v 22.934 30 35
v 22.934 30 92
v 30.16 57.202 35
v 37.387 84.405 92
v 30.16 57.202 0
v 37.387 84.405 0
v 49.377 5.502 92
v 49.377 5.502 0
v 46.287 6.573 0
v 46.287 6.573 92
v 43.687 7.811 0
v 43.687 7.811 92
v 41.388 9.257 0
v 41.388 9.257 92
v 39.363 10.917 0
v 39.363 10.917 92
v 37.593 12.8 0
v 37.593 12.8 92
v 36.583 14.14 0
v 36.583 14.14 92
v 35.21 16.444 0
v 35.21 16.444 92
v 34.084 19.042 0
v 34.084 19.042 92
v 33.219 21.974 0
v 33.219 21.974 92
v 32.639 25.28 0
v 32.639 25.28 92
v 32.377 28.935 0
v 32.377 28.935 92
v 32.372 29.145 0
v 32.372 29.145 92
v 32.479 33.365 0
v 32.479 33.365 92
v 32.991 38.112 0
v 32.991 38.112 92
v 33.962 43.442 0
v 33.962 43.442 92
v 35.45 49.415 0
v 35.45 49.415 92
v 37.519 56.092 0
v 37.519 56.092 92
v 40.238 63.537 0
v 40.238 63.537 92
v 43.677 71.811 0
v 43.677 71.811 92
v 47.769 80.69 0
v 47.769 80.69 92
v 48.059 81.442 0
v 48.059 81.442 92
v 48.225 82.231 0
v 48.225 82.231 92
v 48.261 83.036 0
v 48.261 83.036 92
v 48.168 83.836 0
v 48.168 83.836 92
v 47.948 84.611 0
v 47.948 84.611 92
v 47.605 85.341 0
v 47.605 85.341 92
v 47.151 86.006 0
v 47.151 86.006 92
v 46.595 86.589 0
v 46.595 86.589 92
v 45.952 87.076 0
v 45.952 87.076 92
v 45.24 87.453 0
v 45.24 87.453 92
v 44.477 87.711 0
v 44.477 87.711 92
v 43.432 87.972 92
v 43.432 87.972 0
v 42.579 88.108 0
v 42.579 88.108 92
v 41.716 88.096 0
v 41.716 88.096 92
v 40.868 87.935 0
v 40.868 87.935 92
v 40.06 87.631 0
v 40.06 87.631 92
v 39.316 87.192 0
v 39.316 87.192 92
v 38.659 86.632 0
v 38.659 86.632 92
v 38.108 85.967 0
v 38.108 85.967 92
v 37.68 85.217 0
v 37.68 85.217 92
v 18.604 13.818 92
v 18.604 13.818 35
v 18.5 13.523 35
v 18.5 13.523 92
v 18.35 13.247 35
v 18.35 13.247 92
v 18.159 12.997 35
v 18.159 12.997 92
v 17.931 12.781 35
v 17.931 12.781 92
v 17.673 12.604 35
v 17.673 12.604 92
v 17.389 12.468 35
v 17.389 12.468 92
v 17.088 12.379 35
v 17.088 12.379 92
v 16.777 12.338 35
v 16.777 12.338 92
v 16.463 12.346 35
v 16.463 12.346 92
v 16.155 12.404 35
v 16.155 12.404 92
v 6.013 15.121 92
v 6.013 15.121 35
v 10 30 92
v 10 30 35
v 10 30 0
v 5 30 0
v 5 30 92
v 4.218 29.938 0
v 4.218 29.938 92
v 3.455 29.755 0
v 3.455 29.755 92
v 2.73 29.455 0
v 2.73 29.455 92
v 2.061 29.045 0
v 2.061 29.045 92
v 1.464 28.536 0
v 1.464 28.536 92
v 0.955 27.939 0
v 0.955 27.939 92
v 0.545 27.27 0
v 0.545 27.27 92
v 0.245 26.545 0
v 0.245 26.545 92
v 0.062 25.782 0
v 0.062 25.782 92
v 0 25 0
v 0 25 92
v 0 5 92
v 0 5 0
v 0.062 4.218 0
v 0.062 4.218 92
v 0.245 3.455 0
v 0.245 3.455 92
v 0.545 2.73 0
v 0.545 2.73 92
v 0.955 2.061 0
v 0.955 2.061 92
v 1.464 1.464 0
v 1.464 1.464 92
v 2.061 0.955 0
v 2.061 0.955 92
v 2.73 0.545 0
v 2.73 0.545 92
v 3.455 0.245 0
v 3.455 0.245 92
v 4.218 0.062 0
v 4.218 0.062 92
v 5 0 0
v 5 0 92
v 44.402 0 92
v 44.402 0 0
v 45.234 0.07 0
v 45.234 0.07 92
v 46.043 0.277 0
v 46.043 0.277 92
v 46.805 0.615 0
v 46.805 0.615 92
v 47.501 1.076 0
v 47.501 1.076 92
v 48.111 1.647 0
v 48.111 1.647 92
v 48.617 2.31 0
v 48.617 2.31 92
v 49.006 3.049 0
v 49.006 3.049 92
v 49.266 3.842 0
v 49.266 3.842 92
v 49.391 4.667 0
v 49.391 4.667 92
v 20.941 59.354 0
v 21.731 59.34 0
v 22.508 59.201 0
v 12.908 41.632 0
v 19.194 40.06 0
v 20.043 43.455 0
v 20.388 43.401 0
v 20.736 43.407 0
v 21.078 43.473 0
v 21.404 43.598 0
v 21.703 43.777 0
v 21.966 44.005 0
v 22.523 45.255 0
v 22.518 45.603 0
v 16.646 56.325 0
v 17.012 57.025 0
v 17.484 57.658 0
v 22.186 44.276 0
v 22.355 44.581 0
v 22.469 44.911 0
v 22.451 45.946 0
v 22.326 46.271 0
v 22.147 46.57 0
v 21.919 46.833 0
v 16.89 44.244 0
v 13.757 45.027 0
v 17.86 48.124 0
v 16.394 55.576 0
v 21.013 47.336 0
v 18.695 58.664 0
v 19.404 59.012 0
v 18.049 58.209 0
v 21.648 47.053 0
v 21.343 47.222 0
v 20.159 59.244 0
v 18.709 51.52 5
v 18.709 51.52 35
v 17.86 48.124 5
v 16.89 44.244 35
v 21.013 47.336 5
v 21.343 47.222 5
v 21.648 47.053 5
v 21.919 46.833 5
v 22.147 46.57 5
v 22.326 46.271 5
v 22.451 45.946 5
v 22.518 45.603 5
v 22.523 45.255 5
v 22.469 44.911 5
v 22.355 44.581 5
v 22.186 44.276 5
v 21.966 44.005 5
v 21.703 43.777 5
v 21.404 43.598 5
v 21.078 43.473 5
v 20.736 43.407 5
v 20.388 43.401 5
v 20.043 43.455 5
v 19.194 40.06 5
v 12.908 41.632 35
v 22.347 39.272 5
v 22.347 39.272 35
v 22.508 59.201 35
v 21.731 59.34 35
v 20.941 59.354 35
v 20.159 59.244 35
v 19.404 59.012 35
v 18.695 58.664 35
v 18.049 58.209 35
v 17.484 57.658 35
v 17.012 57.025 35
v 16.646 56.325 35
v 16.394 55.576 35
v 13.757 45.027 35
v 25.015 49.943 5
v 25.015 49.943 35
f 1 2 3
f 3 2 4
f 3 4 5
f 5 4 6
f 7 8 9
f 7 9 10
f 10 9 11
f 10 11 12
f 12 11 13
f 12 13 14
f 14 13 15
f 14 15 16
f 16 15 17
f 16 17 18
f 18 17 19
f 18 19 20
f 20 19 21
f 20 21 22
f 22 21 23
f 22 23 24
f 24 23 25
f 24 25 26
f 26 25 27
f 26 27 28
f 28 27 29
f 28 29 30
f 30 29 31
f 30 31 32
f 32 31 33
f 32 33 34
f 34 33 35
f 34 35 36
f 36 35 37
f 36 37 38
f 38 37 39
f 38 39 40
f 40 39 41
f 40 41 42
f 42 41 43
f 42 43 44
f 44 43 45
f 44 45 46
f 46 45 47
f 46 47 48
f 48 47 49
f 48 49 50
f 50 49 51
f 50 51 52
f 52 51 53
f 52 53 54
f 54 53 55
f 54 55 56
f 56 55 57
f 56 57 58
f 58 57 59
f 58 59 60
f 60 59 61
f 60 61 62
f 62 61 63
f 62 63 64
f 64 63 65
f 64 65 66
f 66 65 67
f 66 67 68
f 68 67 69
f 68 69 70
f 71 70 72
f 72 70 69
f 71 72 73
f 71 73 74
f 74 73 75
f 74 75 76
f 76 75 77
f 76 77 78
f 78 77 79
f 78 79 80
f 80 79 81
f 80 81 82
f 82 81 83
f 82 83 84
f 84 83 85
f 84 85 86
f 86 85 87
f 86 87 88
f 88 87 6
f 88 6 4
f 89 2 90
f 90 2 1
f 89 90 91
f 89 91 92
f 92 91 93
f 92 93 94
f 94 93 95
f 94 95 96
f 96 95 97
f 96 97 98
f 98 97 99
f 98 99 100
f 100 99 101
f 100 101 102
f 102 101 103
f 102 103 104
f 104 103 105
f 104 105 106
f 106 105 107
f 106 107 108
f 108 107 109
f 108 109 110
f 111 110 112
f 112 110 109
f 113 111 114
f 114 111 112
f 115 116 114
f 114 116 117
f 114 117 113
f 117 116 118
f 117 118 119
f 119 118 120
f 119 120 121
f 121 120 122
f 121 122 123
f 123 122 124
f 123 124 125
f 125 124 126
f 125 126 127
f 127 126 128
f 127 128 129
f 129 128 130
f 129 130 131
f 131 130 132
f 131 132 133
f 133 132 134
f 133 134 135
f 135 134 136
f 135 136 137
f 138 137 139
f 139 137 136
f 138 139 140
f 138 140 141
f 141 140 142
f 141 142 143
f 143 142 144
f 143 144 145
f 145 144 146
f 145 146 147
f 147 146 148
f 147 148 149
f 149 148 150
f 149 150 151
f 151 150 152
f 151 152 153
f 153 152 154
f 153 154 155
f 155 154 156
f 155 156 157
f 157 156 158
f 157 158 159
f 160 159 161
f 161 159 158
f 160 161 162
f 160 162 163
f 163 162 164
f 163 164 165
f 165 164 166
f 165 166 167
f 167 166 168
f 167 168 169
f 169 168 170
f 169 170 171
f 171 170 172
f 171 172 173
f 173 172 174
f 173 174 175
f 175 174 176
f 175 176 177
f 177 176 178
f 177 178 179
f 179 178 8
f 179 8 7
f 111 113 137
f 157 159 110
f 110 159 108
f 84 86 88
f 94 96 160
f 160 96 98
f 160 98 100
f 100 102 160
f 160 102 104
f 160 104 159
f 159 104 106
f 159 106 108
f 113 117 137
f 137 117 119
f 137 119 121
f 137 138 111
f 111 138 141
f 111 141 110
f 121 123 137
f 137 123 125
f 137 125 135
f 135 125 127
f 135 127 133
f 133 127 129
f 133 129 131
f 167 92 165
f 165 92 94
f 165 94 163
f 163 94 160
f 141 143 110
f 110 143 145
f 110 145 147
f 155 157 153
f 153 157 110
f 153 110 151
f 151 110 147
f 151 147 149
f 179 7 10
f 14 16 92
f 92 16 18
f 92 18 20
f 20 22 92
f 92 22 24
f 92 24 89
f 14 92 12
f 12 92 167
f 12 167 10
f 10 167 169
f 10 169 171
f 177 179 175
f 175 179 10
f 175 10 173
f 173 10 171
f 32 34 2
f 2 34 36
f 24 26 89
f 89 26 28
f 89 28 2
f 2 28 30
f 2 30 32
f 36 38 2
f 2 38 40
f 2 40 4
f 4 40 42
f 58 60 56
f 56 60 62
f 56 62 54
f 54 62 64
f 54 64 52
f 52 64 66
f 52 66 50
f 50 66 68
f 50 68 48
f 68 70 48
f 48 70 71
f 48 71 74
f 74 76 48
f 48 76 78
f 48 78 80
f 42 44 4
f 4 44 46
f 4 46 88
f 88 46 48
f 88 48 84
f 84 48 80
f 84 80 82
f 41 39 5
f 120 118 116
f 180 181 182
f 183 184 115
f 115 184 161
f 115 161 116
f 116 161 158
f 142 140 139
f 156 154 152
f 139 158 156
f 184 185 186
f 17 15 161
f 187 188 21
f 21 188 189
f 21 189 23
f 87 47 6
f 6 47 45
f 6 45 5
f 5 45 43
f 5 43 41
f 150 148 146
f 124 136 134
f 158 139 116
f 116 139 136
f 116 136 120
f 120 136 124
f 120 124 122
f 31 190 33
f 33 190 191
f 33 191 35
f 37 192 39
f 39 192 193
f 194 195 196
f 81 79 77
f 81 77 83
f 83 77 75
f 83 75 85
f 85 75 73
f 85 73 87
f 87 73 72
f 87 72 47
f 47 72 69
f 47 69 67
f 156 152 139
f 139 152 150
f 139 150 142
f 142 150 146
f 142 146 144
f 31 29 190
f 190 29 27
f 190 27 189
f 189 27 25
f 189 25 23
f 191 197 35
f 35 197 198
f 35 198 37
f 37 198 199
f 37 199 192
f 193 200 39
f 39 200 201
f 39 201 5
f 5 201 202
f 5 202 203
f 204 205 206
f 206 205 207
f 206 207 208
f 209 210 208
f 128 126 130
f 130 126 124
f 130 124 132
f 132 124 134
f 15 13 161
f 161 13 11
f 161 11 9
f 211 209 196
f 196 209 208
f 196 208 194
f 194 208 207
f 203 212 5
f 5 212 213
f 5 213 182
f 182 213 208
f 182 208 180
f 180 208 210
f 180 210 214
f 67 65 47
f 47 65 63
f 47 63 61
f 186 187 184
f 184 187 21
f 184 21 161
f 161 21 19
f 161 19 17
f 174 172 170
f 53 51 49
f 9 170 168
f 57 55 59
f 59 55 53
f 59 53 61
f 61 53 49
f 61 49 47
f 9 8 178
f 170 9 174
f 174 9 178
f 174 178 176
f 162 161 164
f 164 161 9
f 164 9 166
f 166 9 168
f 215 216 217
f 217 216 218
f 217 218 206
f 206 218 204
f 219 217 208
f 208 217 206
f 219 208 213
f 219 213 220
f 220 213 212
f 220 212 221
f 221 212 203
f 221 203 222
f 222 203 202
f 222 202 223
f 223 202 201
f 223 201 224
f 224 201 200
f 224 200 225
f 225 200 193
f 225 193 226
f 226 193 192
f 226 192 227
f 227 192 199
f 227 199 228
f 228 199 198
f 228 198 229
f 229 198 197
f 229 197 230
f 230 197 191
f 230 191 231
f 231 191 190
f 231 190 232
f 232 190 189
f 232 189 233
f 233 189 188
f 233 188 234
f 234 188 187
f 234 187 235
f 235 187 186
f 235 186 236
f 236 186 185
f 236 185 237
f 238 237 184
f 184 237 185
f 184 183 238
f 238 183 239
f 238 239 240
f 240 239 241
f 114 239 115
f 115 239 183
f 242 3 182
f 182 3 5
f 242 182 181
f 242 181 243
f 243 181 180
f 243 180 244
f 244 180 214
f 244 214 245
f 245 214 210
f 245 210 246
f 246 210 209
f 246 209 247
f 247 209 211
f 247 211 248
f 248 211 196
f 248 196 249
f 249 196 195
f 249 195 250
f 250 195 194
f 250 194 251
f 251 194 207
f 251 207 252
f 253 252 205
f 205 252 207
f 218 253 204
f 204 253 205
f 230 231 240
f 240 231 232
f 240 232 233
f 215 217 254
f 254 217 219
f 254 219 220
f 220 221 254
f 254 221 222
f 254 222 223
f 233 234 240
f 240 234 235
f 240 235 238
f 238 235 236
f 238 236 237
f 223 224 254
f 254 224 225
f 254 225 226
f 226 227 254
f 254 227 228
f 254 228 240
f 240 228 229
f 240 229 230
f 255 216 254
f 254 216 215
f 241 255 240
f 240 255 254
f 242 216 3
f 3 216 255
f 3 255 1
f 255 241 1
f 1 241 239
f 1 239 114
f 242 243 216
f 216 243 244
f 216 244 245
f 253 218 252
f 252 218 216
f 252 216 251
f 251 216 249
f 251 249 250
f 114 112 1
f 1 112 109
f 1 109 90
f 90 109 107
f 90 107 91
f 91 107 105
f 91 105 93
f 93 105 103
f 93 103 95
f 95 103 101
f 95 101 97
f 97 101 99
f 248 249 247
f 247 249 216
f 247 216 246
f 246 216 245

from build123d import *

# Parameters (mm, degrees)
BOSS_EXTRUDE1_DEPTH = 92
BOSS_EXTRUDE2_DEPTH = 5
BOSS_EXTRUDE3_START = 5
BOSS_EXTRUDE3_DEPTH = 30


with BuildPart() as part:
    # Sketch1 → Boss-Extrude1 (new body)
    with BuildSketch(Plane.XY):
        with BuildLine():
            ThreePointArc((43.43198058, 87.971890028), (39.678375933, 87.427416305), (37.386921991, 84.40496063))
            Line((37.386921991, 84.40496063), (30.160238403, 57.202480315))
            Line((30.160238403, 57.202480315), (22.933554815, 30))
            Line((22.933554815, 30), (18.60433255, 13.818460639))
            ThreePointArc((18.60433255, 13.818460639), (17.672613775, 12.603502297), (16.154645697, 12.403510891))
            Line((16.154645697, 12.403510891), (6.013160809, 15.120913577))
            Line((6.013160809, 15.120913577), (10, 30))
            Line((10, 30), (5, 30))
            ThreePointArc((5, 30), (1.464466094, 28.535533906), (0, 25))
            Line((0, 25), (0, 5))
            ThreePointArc((0, 5), (1.464466094, 1.464466094), (5, 0))
            Line((5, 0), (44.402158914, 0))
            ThreePointArc((44.402158914, 0), (48.110924034, 1.646634335), (49.376897159, 5.501975487))
            add(Edge.make_bspline(
                [(47.769018508, 80.690333507), (37.23731495, 58.823324345), (26.973591169, 24.424922179), (38.309234052, 8.697752331), (49.376897159, 5.501975487)],
                knots=[0.034365073, 0.034365073, 0.034365073, 0.034365073, 0.450207032, 0.866048991, 0.866048991, 0.866048991, 0.866048991], degree=3))
            ThreePointArc((47.769018508, 80.690333507), (47.791234842, 84.982795953), (44.476941442, 87.710649813))
            Line((44.476941442, 87.710649813), (43.43198058, 87.971890028))
        make_face()
    extrude(amount=BOSS_EXTRUDE1_DEPTH)

    # Sketch1<3> → Boss-Extrude2 (add)
    with BuildSketch(Plane.XY):
        with BuildLine():
            Line((22.933554815, 30), (30.160238403, 57.202480315))
            Line((30.160238403, 57.202480315), (22.508418768, 59.201215835))
            ThreePointArc((22.508418768, 59.201215835), (18.694880172, 58.664472736), (16.394052668, 55.576210673))
            Line((16.394052668, 55.576210673), (13.75675976, 45.027039041))
            Line((13.75675976, 45.027039041), (16.890316486, 44.243649859))
            Line((16.890316486, 44.243649859), (17.860458987, 48.12421986))
            Line((17.860458987, 48.12421986), (21.013422112, 47.335979078))
            ThreePointArc((21.013422112, 47.335979078), (22.468635862, 44.910622828), (20.043279612, 43.455409078))
            Line((20.043279612, 43.455409078), (19.194404924, 40.059910327))
            Line((19.194404924, 40.059910327), (12.907885073, 41.63154029))
            Line((12.907885073, 41.63154029), (10, 30))
            Line((10, 30), (6.013160809, 15.120913577))
            Line((6.013160809, 15.120913577), (16.154645697, 12.403510891))
            ThreePointArc((16.154645697, 12.403510891), (17.672613775, 12.603502297), (18.60433255, 13.818460639))
            Line((18.60433255, 13.818460639), (22.933554815, 30))
        make_face()
    extrude(amount=BOSS_EXTRUDE2_DEPTH)

    # Sketch1<4> → Boss-Extrude3 (add)
    with BuildSketch(Plane.XY.offset(BOSS_EXTRUDE3_START)):
        with BuildLine():
            Line((22.933554815, 30), (30.160238403, 57.202480315))
            Line((30.160238403, 57.202480315), (22.508418768, 59.201215835))
            ThreePointArc((22.508418768, 59.201215835), (18.694880172, 58.664472736), (16.394052668, 55.576210673))
            Line((16.394052668, 55.576210673), (14.72690226, 48.907609041))
            Line((14.72690226, 48.907609041), (13.75675976, 45.027039041))
            Line((13.75675976, 45.027039041), (16.890316486, 44.243649859))
            Line((16.890316486, 44.243649859), (17.860458987, 48.12421986))
            Line((17.860458987, 48.12421986), (18.709333674, 51.51971861))
            Line((18.709333674, 51.51971861), (25.015259925, 49.943237047))
            Line((25.015259925, 49.943237047), (22.34736805, 39.271669546))
            Line((22.34736805, 39.271669546), (19.194404924, 40.059910327))
            Line((19.194404924, 40.059910327), (16.041441799, 40.848151108))
            Line((16.041441799, 40.848151108), (12.907885073, 41.63154029))
            Line((12.907885073, 41.63154029), (10, 30))
            Line((10, 30), (6.013160809, 15.120913577))
            Line((6.013160809, 15.120913577), (16.154645697, 12.403510891))
            ThreePointArc((16.154645697, 12.403510891), (17.672613775, 12.603502297), (18.60433255, 13.818460639))
            Line((18.60433255, 13.818460639), (22.933554815, 30))
        make_face()
    extrude(amount=BOSS_EXTRUDE3_DEPTH)


solid = part.part
